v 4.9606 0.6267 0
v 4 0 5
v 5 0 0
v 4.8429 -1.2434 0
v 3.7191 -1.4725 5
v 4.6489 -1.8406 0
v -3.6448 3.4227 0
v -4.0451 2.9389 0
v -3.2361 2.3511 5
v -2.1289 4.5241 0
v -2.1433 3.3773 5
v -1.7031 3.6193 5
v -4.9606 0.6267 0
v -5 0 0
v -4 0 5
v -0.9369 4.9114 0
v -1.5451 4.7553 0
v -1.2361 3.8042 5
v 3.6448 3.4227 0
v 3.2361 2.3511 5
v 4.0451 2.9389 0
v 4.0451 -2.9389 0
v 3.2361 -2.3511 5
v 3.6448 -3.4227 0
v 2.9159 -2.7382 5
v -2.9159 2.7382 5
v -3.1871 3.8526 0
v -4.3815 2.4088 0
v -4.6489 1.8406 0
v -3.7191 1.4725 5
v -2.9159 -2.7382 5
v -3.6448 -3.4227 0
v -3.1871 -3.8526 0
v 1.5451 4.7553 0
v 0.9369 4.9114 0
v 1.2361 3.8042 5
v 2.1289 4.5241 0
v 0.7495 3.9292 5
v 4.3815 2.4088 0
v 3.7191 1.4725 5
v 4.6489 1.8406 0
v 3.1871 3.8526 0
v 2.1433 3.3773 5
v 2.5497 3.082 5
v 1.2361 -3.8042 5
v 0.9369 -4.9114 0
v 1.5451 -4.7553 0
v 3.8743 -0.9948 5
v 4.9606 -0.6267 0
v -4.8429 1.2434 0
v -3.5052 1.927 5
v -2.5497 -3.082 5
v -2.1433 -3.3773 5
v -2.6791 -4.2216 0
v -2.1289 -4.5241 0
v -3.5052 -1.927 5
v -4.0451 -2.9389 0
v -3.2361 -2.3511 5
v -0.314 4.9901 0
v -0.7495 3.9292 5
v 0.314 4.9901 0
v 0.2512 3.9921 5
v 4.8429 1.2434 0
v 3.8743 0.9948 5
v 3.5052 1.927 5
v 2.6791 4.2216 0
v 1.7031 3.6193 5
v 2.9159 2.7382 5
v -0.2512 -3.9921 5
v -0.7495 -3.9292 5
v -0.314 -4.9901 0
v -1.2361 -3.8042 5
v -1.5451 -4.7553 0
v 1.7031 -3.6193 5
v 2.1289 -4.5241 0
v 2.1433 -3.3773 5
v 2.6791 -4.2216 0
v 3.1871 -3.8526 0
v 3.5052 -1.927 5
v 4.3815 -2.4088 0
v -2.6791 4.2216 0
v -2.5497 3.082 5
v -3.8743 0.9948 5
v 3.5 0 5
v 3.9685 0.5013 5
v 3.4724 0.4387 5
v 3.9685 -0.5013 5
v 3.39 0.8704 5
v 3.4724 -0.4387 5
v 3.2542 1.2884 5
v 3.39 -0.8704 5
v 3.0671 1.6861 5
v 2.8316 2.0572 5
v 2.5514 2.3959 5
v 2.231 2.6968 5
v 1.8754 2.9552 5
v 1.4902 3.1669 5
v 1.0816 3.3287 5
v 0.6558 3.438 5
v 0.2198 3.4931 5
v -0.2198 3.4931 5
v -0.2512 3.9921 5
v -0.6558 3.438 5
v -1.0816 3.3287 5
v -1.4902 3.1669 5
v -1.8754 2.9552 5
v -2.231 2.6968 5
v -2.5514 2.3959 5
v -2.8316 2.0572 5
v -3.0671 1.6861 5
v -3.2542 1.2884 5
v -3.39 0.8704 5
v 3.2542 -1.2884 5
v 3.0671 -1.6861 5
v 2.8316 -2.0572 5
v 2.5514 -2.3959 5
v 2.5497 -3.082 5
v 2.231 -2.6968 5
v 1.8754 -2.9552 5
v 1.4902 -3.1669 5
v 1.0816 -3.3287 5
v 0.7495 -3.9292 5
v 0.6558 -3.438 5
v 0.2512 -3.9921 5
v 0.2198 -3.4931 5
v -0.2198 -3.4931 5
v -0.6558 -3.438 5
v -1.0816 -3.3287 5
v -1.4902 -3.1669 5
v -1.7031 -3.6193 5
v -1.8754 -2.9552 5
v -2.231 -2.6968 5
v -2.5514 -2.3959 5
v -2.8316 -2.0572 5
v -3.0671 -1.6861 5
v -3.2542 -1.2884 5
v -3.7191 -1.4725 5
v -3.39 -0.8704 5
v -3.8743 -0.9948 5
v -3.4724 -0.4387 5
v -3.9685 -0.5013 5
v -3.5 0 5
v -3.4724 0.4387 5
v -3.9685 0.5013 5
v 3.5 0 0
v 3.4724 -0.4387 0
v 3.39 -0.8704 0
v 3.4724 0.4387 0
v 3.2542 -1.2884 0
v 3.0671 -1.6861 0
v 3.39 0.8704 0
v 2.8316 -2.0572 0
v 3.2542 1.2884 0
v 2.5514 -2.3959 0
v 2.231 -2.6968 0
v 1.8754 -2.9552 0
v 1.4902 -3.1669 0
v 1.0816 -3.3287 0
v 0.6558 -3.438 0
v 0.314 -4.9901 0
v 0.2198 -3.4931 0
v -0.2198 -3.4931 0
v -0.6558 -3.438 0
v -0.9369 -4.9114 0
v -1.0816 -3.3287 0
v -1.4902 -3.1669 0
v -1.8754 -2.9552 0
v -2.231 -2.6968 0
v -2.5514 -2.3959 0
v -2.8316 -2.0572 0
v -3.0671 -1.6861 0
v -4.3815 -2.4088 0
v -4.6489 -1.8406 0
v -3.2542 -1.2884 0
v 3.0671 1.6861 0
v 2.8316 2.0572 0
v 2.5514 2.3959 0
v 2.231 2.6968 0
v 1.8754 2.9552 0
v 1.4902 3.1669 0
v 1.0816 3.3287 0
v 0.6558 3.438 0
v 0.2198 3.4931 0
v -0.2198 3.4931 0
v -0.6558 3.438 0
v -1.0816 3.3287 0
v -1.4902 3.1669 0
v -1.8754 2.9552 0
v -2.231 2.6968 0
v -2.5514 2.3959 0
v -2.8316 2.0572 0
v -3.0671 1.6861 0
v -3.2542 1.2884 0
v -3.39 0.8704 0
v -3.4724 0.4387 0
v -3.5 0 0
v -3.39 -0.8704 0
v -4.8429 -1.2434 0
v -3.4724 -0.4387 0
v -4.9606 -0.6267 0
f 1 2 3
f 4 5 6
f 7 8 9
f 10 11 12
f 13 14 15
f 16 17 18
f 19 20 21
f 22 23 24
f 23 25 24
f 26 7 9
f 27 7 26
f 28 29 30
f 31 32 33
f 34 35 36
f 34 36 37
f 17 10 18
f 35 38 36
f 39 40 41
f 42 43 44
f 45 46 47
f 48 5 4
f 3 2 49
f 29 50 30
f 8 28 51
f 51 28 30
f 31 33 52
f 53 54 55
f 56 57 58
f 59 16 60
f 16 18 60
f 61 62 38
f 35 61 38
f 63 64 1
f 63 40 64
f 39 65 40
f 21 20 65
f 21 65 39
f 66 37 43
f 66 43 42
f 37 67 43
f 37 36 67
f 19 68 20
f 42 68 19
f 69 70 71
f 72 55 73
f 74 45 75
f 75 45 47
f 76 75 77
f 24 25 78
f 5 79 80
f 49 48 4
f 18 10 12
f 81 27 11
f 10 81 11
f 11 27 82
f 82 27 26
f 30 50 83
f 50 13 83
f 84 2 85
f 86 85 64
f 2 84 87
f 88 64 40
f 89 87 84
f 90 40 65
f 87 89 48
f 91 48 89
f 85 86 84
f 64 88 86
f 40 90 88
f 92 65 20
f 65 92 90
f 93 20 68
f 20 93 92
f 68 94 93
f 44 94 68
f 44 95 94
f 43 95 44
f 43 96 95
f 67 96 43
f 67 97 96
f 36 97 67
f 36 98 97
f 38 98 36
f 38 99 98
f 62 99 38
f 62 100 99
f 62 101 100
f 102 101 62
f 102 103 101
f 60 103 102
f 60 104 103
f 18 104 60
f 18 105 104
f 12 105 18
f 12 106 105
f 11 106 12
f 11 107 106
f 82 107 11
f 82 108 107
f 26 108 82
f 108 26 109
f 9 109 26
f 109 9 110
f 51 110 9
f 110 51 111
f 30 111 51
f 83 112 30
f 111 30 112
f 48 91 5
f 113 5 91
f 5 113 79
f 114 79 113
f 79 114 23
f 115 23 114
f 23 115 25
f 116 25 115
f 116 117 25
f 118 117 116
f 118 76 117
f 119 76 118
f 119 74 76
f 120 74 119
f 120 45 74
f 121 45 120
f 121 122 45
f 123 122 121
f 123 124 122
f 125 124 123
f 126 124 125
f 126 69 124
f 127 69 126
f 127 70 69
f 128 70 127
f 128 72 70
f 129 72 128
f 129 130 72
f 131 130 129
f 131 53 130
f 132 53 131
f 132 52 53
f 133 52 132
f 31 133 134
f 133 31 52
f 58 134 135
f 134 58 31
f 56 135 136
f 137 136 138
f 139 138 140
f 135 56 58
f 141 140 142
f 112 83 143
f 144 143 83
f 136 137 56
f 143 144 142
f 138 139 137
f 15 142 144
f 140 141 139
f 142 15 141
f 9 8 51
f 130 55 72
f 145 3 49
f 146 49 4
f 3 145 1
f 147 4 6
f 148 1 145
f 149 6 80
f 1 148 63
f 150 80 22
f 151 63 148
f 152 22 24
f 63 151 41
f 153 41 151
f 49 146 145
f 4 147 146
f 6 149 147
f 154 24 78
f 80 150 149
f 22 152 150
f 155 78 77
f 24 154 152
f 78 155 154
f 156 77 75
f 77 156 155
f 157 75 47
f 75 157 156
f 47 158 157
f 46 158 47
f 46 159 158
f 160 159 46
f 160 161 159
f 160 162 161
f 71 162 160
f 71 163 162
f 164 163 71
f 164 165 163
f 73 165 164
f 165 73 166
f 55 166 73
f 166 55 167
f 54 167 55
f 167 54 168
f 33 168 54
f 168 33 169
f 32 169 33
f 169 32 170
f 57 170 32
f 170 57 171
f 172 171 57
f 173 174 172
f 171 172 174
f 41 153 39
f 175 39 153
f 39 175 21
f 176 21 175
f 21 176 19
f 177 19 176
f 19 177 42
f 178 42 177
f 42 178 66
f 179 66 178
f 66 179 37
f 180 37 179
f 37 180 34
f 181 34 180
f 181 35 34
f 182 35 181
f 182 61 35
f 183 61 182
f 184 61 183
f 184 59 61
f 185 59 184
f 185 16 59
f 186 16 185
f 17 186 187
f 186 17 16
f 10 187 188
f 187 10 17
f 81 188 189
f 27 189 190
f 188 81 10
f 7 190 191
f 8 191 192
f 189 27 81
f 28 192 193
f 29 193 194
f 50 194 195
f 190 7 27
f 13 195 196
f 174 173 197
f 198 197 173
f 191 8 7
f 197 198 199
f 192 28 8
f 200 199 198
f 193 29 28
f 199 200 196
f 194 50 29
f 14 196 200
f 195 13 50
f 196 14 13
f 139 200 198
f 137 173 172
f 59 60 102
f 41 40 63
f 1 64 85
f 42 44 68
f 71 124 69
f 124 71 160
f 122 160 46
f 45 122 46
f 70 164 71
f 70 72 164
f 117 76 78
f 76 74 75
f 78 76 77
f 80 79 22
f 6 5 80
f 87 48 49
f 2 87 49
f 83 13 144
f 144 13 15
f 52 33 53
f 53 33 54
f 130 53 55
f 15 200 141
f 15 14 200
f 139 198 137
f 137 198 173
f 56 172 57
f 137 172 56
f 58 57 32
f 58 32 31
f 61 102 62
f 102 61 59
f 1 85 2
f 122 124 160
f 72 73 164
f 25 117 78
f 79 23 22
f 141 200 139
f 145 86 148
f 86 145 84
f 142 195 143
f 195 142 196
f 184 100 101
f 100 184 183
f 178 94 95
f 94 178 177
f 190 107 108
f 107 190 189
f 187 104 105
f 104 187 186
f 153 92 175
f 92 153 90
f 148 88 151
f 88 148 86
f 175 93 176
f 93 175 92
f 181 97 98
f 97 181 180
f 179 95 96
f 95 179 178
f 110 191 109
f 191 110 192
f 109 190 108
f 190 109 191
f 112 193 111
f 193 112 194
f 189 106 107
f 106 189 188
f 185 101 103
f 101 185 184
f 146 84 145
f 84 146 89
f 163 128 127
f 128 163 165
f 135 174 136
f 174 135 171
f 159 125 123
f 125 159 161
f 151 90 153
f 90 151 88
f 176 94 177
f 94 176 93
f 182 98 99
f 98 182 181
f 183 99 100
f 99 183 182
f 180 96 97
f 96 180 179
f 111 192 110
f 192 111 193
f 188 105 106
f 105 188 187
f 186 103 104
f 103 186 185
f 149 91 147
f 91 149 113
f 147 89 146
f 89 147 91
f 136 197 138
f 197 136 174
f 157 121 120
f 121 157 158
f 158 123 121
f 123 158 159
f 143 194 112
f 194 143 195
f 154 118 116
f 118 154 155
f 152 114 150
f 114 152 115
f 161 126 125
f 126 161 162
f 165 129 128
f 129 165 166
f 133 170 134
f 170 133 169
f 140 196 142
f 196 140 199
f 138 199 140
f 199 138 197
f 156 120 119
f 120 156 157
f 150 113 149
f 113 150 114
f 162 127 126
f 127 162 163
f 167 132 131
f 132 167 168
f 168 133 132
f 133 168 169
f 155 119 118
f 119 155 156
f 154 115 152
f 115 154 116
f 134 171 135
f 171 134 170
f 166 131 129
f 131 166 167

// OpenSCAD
entraxe = 88;
thickness = 1;
plate = 33;



difference() {
	cylinder(h=5, r1 = 5, r2= 4, $fn=50);
	translate([0,0,-thickness])
		cylinder(h=5+2*thickness, r = 3.5, $fn=50);
}
